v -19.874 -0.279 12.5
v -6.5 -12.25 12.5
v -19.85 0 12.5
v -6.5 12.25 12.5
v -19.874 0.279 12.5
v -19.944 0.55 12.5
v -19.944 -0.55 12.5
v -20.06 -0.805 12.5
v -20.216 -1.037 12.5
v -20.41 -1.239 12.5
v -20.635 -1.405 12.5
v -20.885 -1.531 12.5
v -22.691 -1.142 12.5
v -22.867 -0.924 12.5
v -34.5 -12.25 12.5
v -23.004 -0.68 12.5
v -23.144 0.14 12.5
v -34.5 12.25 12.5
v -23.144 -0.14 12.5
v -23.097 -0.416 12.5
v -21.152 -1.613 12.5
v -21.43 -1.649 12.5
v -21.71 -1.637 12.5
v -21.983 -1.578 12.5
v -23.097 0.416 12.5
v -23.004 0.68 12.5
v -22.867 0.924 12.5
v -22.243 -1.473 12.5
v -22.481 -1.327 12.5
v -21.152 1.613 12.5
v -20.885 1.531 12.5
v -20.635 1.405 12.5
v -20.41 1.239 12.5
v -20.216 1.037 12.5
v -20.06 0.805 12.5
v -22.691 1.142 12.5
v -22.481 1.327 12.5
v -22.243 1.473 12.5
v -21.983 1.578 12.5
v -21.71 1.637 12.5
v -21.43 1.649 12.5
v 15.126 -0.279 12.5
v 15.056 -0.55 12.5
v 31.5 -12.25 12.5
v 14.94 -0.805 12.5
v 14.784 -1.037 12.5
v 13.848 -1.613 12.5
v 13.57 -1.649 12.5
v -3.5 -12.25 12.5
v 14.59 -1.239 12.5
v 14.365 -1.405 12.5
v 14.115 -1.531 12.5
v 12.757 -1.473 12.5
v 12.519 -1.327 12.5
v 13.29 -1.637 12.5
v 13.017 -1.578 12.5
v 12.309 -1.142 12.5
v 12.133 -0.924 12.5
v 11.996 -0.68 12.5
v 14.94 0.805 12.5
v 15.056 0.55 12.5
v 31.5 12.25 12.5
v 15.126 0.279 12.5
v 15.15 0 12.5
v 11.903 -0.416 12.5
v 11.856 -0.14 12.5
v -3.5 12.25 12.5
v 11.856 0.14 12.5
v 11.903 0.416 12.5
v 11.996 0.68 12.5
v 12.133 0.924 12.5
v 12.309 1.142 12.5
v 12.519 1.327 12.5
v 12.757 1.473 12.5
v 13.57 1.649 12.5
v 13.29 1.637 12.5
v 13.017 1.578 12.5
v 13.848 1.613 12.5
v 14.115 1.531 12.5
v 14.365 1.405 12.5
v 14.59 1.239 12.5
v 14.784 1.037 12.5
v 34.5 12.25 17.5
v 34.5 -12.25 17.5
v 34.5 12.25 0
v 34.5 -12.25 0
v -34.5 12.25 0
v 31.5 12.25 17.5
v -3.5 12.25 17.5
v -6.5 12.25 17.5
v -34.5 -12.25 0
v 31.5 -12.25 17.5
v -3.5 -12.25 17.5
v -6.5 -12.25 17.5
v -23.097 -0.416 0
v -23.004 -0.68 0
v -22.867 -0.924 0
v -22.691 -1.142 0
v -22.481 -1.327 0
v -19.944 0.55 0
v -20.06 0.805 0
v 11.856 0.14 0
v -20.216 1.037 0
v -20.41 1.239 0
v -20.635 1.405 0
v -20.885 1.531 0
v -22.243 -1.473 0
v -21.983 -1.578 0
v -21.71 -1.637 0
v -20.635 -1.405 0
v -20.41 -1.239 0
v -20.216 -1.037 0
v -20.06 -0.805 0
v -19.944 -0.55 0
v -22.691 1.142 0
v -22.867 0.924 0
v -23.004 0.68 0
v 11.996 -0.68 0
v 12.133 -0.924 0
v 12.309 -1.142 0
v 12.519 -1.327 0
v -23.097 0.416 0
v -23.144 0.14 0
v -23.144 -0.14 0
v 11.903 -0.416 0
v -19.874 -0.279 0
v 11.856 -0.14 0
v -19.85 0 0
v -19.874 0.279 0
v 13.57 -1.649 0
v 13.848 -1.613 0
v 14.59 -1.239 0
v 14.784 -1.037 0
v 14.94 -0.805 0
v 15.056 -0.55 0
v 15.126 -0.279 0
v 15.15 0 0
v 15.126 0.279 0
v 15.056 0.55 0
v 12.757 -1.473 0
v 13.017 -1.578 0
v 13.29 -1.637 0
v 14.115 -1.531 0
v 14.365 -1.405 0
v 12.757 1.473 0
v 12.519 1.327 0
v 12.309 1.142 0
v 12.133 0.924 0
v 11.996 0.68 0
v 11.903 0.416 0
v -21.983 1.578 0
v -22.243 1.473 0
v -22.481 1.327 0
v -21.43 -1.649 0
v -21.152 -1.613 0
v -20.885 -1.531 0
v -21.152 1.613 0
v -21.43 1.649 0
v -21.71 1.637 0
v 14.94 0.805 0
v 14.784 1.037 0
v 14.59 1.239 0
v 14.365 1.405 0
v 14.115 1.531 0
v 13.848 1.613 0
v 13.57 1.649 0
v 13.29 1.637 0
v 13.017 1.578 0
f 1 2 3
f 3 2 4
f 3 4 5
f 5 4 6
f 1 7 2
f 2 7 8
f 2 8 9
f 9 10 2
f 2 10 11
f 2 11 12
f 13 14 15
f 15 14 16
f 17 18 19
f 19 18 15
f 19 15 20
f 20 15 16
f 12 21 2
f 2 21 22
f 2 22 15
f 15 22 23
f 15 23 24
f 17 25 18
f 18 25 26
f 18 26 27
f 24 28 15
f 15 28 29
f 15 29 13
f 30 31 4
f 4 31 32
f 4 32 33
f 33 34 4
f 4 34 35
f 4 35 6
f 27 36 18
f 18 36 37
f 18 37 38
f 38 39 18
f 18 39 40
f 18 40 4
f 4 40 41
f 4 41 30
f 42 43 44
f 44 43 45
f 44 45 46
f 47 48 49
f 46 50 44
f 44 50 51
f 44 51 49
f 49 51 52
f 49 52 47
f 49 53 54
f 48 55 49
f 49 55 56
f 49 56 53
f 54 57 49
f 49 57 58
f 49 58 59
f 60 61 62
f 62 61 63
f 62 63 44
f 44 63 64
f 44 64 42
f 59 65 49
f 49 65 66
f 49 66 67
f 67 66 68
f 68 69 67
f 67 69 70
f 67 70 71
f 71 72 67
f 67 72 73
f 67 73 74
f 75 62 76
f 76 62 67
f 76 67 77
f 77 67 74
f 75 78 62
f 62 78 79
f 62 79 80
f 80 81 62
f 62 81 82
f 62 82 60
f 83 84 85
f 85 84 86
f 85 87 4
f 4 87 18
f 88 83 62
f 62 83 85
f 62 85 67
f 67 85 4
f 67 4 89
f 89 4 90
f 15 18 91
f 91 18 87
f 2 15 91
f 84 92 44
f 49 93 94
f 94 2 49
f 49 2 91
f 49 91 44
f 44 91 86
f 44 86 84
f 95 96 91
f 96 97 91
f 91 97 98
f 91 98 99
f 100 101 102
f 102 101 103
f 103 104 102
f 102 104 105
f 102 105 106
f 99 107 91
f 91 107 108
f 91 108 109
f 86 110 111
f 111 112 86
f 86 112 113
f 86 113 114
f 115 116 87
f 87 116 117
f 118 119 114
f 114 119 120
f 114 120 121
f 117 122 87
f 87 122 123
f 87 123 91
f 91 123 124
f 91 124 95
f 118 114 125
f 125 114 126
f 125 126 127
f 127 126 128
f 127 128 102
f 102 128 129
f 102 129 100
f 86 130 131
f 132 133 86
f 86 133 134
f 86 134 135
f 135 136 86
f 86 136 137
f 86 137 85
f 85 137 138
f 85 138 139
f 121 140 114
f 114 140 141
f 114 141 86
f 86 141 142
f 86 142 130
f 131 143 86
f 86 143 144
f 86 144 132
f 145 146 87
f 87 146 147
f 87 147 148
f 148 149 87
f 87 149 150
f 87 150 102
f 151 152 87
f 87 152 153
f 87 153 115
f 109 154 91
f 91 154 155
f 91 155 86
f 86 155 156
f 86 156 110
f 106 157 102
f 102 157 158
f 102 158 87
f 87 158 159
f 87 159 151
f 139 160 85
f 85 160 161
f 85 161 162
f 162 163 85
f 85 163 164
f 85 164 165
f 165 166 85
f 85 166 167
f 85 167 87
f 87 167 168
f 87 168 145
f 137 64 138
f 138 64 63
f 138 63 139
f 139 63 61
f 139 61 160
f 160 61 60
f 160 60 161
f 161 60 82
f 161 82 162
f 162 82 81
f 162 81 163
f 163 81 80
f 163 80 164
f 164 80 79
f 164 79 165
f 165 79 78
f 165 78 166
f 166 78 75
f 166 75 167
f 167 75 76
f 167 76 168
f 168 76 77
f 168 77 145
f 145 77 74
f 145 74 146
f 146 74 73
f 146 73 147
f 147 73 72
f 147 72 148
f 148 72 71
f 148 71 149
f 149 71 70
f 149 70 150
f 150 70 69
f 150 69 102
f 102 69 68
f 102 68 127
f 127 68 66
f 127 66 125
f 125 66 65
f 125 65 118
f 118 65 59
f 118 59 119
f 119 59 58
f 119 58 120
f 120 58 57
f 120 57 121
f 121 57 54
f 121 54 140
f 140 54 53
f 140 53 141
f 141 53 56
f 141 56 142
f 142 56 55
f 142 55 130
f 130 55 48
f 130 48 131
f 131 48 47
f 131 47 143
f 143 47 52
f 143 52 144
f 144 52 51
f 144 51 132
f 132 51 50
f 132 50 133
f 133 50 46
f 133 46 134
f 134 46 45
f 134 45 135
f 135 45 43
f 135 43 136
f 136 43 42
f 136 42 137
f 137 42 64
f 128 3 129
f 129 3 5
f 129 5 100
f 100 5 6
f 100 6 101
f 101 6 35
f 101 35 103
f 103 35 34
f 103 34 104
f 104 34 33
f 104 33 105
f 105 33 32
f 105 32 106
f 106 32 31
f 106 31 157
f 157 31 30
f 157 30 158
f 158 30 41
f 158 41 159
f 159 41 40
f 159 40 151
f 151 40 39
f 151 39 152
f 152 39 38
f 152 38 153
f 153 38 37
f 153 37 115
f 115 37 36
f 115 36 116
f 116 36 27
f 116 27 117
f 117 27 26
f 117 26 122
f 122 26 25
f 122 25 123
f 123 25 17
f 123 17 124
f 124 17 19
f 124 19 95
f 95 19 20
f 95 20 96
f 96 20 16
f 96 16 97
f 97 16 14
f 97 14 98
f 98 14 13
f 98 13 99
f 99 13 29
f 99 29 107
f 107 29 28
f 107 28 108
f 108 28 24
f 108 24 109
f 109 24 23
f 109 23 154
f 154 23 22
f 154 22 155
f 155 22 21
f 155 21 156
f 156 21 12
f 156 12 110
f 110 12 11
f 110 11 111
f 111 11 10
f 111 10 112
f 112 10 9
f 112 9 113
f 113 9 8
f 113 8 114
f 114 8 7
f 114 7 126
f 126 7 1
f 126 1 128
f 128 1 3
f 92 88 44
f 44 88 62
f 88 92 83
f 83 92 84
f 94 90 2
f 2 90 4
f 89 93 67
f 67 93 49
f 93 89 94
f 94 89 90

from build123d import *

# Parameters (mm, degrees)
SKETCH2_W      = 69
SKETCH2_H      = 24.5
EXTRUDE1_DEPTH = 12.5
SKETCH3_R      = 1.65
EXTRUDE2_DEPTH = 39.685430074
SKETCH4_W      = 3
SKETCH4_H      = 24.5
EXTRUDE3_DEPTH = 5


with BuildPart() as part:
    # Sketch2 → Extrude1 (new body)
    with BuildSketch(Plane.XY):
        Rectangle(SKETCH2_W, SKETCH2_H)
    extrude(amount=EXTRUDE1_DEPTH)

    # Sketch3 → Extrude2 (cut, through all)
    with BuildSketch(Plane.XY.offset(12.5)):
        with Locations((-21.5, 0)):
            Circle(SKETCH3_R)
        with Locations((13.5, 0)):
            Circle(SKETCH3_R)
    extrude(amount=-EXTRUDE2_DEPTH, mode=Mode.SUBTRACT)

    # Sketch4 → Extrude3 (add)
    with BuildSketch(Plane.XY.offset(12.5)):
        with Locations((33, 0)):
            Rectangle(SKETCH4_W, SKETCH4_H)
        with Locations((-5, 0)):
            Rectangle(SKETCH4_W, SKETCH4_H)
    extrude(amount=EXTRUDE3_DEPTH)


solid = part.part
